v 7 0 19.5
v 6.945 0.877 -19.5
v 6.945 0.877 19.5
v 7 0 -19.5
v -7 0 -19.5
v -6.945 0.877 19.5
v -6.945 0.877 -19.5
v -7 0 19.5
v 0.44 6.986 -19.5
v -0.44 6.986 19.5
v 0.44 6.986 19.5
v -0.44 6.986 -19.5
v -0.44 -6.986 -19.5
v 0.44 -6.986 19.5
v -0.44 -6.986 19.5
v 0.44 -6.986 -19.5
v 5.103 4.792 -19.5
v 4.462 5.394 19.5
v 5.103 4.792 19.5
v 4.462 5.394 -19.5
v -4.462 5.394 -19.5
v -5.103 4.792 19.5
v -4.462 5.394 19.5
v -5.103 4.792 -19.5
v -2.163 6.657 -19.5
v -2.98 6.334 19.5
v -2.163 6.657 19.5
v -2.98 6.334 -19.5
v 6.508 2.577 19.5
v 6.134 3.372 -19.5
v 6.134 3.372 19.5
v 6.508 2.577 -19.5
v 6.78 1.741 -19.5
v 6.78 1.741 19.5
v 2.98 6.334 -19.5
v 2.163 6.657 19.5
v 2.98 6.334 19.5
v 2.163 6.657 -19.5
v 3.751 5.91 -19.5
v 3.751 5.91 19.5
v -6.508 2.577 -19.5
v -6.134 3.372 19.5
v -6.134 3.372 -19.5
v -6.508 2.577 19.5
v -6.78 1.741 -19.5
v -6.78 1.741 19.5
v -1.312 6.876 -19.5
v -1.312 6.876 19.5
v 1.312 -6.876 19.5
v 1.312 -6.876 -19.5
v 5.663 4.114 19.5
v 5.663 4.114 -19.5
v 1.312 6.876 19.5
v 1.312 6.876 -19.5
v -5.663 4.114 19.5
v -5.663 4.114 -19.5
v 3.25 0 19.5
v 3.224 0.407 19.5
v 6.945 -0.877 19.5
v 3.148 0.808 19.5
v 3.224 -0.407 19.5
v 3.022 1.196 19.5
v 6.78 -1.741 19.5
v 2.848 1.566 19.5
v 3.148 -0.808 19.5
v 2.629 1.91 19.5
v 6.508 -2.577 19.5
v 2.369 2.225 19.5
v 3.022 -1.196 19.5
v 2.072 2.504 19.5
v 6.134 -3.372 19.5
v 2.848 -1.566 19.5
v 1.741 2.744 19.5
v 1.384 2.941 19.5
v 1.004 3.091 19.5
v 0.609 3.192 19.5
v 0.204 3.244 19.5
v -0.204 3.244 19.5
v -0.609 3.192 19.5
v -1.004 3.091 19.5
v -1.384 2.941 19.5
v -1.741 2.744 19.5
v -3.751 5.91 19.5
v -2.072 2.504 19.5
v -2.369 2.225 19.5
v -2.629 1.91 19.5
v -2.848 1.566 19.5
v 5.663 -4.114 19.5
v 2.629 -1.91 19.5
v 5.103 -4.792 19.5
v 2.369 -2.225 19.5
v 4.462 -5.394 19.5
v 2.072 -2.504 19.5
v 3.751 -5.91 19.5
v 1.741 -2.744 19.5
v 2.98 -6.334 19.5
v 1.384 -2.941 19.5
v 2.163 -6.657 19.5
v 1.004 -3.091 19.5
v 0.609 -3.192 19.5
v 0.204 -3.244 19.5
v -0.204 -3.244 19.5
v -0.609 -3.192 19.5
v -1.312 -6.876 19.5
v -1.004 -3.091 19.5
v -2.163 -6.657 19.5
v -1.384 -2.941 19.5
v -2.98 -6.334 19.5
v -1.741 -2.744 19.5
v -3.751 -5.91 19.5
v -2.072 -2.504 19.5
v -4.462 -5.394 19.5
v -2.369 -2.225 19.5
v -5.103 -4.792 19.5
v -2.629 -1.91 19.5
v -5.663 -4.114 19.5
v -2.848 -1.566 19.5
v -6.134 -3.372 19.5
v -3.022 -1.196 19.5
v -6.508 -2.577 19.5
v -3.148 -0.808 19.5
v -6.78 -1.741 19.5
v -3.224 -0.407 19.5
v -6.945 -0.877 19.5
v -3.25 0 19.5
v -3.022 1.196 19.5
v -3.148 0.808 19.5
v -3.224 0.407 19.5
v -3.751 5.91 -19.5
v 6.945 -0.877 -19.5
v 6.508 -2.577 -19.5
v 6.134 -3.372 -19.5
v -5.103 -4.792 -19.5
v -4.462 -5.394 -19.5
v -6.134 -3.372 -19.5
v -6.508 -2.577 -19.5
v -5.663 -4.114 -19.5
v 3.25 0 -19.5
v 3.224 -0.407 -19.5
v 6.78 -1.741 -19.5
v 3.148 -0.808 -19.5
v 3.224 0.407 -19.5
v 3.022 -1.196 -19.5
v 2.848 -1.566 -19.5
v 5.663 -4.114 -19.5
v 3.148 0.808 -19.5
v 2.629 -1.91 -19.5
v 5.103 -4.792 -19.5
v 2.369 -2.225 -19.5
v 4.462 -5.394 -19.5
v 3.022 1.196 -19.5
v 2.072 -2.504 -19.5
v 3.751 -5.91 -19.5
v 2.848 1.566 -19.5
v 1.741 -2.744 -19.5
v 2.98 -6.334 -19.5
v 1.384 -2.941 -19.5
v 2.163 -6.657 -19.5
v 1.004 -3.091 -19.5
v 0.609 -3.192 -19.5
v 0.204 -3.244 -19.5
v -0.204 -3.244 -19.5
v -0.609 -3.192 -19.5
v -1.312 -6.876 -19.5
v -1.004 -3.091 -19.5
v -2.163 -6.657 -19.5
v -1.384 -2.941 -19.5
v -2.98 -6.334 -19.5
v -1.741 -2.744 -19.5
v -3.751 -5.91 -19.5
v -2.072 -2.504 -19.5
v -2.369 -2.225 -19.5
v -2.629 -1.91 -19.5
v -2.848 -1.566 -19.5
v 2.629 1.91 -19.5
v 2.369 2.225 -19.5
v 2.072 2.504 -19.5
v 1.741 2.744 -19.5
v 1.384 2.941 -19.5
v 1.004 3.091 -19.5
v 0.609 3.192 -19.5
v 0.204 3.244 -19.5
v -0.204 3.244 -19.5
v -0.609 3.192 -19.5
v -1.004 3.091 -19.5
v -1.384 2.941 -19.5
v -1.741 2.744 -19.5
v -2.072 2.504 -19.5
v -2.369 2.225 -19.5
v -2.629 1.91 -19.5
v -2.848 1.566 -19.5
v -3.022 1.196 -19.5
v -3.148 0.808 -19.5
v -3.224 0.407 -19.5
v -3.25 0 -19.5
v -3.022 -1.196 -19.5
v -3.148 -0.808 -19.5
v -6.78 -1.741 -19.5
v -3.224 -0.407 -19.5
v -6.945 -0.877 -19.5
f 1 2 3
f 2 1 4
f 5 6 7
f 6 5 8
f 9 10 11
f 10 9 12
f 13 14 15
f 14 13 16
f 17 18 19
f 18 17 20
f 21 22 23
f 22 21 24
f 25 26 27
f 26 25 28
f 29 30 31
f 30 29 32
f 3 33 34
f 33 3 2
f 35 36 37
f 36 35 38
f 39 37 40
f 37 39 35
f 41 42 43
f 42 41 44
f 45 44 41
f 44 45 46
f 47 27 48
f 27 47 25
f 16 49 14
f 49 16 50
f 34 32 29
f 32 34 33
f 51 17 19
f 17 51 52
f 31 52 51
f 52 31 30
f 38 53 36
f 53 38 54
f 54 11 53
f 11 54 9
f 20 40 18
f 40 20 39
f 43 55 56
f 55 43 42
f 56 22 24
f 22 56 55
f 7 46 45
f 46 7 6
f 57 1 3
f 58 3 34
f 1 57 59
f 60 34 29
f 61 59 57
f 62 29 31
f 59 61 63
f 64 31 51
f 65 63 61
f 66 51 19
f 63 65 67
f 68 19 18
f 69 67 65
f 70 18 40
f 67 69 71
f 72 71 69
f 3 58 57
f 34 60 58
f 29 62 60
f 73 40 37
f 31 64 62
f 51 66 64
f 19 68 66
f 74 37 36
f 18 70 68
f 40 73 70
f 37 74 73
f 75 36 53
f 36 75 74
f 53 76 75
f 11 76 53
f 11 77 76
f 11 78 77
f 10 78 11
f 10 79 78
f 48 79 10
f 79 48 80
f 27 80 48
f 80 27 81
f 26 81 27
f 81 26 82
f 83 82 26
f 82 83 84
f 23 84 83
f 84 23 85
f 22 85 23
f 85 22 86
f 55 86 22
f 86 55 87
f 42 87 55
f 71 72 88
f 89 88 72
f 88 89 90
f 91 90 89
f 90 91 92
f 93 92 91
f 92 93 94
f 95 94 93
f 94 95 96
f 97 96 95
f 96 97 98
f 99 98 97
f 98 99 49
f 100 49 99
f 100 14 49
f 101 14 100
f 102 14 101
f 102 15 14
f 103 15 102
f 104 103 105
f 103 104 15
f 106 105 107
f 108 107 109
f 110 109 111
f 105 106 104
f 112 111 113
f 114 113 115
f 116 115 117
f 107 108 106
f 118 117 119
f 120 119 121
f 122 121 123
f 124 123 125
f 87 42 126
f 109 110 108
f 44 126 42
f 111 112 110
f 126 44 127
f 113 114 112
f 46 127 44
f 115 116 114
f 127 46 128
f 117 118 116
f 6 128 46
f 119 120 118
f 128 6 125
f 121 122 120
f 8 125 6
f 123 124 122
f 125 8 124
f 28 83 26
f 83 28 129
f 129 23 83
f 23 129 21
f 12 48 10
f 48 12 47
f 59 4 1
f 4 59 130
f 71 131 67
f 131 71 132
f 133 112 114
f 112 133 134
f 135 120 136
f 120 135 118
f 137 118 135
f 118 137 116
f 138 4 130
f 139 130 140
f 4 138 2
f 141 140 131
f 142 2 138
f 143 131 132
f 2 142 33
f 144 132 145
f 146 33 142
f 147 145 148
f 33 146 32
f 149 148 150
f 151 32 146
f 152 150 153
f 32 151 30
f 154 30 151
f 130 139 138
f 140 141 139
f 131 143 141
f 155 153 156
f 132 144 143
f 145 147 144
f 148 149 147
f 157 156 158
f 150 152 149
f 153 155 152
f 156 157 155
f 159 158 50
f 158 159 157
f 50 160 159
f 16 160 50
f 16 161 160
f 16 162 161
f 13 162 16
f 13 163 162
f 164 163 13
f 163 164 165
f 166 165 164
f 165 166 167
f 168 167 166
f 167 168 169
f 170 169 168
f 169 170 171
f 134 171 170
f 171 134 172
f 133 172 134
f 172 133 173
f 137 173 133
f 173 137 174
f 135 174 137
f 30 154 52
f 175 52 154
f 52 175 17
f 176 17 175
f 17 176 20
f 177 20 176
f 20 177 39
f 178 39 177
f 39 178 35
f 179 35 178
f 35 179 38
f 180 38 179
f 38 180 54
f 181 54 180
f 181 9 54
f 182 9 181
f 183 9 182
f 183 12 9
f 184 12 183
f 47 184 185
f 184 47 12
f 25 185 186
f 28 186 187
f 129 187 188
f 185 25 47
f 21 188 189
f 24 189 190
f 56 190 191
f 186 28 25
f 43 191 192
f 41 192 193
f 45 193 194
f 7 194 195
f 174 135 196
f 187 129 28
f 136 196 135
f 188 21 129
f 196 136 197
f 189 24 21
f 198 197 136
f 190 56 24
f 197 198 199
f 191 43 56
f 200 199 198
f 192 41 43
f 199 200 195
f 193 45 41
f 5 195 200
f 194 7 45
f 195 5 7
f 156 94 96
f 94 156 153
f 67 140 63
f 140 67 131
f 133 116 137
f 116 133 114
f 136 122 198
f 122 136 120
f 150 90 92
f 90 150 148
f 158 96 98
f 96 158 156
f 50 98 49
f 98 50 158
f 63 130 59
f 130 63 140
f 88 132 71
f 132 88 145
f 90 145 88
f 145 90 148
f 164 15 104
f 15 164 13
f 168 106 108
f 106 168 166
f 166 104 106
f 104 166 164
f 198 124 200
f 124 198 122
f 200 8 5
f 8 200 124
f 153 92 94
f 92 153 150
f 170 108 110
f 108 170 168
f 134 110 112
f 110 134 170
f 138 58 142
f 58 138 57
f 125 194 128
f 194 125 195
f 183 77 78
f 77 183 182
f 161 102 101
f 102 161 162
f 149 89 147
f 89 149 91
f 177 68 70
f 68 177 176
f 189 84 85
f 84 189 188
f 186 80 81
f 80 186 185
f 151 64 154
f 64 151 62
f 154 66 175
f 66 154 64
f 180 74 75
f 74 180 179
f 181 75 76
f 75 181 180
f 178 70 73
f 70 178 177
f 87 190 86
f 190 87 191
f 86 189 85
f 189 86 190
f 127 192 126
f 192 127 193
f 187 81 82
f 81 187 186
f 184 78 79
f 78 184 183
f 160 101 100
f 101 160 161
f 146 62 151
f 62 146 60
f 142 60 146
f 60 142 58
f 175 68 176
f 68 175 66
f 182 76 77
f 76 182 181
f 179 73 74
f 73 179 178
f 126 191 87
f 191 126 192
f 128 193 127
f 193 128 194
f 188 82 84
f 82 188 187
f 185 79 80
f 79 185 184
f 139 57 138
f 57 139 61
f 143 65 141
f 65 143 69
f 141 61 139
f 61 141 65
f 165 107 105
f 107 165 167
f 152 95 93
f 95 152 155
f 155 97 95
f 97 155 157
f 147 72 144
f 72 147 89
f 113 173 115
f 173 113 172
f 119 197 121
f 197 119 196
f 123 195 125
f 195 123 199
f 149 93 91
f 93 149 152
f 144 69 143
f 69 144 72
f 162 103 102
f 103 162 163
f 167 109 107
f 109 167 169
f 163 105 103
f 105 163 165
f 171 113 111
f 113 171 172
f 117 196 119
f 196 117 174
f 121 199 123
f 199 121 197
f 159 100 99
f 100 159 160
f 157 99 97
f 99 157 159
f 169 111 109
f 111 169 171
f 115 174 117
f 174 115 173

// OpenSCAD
$fn = 50;


difference() {
	union() {
		translate(v = [0, 0, -19.5000000000]) {
			cylinder(h = 39, r = 7.0000000000);
		}
	}
	union() {
		translate(v = [0, 0, -100.0000000000]) {
			cylinder(h = 200, r = 3.2500000000);
		}
	}
}
